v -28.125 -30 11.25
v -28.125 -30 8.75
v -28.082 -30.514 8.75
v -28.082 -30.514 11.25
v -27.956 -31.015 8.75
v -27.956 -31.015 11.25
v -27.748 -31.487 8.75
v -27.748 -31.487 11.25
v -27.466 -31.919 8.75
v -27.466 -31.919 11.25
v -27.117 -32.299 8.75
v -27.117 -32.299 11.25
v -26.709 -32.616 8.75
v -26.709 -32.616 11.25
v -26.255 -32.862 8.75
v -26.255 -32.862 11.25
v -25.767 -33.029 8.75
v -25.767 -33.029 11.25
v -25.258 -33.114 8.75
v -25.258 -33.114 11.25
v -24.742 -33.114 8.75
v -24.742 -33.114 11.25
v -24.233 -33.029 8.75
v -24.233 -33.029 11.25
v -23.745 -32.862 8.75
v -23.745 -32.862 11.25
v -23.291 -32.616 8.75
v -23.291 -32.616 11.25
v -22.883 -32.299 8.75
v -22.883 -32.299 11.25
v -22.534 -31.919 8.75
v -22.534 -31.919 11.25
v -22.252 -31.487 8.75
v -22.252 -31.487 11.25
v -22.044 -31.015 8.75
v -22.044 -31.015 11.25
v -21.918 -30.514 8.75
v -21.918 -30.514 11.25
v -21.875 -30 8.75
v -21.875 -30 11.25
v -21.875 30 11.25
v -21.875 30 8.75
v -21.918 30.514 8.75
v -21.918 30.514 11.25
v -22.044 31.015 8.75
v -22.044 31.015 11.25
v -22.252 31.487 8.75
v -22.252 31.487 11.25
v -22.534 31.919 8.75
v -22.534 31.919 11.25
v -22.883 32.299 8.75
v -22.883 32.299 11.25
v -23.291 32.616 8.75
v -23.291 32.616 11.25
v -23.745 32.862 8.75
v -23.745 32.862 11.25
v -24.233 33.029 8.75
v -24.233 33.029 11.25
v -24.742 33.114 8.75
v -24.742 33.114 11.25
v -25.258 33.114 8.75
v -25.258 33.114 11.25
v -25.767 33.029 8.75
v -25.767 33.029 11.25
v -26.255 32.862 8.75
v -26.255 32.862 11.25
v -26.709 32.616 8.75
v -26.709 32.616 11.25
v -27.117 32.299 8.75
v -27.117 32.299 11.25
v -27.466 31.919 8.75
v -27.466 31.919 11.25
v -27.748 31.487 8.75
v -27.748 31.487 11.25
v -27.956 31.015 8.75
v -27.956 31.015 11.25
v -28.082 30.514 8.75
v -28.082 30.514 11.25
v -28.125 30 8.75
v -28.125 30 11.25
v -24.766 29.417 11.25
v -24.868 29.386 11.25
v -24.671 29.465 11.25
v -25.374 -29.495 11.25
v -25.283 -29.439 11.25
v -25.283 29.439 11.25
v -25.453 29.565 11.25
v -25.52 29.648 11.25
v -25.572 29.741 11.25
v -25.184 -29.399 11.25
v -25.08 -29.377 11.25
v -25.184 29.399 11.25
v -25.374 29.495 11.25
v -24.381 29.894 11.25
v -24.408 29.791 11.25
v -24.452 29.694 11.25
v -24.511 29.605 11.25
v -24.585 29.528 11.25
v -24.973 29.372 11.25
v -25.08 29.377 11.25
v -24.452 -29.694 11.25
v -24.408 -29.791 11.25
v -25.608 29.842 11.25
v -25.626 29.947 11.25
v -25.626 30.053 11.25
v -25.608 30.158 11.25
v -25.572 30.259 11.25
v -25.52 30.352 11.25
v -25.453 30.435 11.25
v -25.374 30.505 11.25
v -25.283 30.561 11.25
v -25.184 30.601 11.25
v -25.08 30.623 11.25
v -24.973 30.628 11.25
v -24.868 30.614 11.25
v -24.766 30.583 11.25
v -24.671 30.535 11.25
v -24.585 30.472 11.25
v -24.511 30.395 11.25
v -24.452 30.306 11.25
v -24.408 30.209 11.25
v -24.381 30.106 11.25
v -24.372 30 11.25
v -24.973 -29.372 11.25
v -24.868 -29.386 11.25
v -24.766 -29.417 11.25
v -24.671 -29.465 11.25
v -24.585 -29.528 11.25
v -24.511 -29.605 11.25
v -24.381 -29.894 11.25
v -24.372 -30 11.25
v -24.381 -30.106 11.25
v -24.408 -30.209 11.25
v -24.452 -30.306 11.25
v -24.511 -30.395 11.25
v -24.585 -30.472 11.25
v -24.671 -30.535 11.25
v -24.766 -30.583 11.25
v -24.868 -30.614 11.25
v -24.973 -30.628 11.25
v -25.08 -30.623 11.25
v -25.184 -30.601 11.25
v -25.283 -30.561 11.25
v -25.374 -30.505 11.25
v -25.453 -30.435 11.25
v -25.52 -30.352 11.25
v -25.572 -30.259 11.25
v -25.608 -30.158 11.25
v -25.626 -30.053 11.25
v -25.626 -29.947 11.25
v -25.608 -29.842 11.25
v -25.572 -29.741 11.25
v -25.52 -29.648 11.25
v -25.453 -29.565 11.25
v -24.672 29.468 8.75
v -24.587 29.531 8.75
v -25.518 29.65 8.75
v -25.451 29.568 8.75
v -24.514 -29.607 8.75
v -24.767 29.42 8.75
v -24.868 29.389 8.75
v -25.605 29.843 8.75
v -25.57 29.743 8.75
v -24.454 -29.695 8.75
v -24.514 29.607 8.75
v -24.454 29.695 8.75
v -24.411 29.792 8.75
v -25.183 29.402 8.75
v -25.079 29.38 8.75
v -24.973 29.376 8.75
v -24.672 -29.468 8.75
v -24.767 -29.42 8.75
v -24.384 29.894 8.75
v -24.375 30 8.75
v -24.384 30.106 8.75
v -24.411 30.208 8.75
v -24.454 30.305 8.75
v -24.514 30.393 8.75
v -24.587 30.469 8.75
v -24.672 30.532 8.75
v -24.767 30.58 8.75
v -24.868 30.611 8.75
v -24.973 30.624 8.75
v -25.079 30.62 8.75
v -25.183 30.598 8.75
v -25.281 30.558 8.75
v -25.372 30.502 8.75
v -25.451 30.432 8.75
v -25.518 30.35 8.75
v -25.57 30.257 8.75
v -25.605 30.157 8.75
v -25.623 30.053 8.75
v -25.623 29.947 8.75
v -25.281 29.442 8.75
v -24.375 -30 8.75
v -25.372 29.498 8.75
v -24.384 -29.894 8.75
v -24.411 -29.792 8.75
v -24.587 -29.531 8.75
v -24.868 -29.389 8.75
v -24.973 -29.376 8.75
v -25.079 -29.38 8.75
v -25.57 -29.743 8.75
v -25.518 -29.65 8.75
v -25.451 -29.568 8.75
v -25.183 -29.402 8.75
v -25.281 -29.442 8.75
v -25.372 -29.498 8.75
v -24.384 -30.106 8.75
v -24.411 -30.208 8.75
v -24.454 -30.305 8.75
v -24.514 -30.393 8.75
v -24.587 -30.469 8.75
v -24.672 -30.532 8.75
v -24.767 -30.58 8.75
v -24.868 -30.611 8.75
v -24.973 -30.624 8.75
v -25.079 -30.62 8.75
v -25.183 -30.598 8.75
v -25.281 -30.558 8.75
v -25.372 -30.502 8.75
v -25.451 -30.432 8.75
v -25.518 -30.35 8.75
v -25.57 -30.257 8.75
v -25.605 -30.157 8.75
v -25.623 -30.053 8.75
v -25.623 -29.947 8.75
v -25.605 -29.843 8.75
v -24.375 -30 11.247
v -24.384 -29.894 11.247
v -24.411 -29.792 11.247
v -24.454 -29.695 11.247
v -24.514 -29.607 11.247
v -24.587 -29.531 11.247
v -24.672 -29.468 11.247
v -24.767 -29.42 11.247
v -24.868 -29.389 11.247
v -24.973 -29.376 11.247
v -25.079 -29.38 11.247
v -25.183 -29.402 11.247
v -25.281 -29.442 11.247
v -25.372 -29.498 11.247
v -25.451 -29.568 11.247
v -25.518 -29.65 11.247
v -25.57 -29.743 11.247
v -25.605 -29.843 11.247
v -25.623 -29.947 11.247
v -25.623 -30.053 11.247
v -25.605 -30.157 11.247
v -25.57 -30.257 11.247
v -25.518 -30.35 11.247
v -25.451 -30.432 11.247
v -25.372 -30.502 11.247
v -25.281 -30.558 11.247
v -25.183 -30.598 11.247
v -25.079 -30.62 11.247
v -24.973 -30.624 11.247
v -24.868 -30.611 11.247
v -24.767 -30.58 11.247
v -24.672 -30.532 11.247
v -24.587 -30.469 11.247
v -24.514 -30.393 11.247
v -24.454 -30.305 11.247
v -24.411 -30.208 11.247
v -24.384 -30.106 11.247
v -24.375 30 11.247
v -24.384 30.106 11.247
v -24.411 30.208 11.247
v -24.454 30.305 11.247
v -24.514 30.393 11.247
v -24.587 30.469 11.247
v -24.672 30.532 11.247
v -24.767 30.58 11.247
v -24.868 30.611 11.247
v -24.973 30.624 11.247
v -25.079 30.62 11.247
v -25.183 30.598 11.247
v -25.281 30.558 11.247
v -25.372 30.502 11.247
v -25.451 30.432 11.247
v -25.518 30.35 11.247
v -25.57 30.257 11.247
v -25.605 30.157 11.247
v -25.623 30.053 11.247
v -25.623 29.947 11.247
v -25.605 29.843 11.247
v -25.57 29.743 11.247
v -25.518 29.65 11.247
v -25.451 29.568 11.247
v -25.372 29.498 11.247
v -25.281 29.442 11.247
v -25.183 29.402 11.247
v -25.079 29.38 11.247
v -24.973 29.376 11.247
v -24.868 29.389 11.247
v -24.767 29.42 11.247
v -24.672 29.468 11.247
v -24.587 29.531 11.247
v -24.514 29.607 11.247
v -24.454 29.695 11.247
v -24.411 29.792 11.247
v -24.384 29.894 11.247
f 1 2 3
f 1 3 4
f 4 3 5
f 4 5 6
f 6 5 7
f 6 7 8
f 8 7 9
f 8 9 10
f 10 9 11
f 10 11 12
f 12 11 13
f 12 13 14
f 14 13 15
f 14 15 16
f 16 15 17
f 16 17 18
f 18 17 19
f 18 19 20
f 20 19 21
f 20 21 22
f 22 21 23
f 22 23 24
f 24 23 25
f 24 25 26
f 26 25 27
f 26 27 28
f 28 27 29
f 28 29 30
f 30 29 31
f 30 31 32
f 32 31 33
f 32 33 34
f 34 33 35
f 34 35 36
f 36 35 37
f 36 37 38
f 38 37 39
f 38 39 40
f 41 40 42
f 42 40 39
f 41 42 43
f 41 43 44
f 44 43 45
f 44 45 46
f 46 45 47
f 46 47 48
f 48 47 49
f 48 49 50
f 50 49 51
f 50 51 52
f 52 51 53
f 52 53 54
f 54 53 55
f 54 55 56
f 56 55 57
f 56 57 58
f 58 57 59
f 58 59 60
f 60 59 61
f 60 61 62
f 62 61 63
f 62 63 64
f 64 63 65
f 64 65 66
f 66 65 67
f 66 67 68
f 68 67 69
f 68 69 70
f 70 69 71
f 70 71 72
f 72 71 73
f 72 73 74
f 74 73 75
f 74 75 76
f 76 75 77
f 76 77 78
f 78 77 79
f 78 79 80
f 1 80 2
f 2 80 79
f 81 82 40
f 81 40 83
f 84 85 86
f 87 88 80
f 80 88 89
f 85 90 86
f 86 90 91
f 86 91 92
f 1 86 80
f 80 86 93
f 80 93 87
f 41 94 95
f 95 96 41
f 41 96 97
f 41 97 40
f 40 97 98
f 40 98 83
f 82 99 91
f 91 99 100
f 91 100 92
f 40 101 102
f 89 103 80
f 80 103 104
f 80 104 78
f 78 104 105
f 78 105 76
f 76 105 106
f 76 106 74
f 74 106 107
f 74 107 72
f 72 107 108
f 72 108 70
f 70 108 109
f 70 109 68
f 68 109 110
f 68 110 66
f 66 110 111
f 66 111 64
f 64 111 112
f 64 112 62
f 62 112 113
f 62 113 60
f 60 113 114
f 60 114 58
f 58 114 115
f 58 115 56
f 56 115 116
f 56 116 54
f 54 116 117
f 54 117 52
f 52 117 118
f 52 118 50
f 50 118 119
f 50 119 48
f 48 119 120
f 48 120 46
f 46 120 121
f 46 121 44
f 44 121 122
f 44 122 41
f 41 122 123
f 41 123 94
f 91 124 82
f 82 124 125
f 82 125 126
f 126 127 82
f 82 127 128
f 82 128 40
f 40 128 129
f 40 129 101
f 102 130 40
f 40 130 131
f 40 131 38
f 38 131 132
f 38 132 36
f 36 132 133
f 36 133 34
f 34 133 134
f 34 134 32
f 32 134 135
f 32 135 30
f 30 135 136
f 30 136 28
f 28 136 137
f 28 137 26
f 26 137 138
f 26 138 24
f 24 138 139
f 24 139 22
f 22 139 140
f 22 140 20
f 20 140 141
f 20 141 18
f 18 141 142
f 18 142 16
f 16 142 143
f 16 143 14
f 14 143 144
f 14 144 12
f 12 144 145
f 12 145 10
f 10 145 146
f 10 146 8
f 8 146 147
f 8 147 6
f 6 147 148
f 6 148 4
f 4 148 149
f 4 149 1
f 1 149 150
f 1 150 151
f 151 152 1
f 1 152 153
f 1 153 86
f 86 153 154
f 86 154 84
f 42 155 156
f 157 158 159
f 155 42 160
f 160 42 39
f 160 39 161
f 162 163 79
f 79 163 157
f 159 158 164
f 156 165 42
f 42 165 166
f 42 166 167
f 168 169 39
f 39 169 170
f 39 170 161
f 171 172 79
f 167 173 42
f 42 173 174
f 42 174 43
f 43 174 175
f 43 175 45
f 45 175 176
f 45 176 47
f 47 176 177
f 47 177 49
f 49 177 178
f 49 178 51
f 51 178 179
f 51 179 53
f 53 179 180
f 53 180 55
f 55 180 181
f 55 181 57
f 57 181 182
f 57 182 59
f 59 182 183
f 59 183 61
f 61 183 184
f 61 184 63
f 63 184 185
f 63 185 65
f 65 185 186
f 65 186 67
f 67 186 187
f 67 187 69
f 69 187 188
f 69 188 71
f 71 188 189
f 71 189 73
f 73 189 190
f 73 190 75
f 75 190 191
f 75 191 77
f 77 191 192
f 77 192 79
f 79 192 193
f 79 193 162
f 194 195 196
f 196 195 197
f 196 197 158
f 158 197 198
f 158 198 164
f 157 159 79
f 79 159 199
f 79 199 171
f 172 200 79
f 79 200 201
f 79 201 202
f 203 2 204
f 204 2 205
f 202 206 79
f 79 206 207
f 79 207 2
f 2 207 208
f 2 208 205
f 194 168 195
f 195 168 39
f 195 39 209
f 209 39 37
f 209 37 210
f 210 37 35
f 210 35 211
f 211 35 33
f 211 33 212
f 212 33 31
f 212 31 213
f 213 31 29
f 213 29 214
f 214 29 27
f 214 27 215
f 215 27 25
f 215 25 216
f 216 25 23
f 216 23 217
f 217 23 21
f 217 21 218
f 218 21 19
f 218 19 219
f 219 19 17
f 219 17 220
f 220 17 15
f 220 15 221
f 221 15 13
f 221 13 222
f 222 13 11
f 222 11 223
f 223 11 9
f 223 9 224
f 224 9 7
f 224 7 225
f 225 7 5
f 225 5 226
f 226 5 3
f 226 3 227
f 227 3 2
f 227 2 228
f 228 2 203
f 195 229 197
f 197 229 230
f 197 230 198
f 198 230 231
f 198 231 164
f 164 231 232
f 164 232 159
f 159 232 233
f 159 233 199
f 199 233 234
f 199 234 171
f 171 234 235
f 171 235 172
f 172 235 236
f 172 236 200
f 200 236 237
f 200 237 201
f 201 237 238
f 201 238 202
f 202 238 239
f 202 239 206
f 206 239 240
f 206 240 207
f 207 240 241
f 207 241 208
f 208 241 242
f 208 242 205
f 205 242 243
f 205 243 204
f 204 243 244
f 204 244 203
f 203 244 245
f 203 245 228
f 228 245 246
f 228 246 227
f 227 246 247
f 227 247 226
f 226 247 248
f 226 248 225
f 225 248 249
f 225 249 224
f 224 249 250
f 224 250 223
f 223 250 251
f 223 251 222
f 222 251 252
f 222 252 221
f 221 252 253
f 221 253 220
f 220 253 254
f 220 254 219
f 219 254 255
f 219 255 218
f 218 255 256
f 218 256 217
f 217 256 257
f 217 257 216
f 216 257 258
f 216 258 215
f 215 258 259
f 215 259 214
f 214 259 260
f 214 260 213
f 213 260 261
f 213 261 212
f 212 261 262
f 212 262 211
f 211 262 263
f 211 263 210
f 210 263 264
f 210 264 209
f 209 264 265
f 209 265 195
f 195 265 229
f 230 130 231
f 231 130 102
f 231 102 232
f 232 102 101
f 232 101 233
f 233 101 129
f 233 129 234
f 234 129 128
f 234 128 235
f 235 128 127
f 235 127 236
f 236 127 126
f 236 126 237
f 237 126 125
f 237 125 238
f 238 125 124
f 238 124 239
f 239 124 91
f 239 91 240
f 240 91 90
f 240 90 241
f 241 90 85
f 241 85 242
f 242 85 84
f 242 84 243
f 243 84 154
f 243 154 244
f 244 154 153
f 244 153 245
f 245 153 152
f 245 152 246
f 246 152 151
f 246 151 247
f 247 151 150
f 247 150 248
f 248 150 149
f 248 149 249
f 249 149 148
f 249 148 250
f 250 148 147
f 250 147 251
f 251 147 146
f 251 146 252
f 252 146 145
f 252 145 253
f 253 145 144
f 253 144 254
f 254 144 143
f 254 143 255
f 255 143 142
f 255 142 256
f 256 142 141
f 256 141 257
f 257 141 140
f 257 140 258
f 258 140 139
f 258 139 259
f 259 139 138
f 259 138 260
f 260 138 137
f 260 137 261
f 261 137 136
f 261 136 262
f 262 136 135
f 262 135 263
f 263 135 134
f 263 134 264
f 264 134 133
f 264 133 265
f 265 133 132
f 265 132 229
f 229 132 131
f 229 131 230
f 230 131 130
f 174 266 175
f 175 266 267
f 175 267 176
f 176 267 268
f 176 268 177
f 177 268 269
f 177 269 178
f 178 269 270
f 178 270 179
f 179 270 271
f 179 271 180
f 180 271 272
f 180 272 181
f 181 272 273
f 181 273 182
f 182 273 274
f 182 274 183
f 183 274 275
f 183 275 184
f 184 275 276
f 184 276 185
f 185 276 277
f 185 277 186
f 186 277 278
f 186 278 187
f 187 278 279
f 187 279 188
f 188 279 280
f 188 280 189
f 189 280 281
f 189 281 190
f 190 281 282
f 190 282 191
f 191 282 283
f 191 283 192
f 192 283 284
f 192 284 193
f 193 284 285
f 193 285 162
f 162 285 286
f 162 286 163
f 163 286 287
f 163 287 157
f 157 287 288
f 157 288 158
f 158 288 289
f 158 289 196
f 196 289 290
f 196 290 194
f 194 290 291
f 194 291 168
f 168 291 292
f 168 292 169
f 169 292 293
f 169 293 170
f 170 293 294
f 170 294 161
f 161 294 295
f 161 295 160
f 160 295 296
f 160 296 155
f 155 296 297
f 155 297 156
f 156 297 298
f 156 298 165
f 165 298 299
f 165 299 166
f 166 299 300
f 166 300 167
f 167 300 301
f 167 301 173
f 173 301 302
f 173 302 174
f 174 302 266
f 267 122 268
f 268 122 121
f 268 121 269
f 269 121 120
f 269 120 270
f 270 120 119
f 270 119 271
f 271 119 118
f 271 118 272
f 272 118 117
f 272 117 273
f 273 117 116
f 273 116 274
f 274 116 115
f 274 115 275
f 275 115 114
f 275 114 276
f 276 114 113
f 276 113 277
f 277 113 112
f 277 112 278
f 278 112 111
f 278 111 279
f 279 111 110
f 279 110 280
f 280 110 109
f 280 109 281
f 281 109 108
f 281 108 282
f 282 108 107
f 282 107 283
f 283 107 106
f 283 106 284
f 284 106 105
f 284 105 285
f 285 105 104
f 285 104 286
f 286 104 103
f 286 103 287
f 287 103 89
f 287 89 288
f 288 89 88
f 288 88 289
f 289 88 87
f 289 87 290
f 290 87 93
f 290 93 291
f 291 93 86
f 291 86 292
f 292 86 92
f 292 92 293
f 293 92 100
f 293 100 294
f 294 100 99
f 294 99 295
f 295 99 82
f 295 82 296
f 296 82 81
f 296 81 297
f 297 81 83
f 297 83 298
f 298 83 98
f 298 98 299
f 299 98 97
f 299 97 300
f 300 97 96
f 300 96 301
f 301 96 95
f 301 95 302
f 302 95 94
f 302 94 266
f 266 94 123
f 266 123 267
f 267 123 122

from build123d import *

# Parameters (mm, degrees)
BOSS_EXTRUDE1_DEPTH              = 20
F_10_0MM_DOWEL_HOLE1_D           = 10
F_10_0MM_DOWEL_HOLE1_CSINK_D     = 10.05
F_10_0MM_DOWEL_HOLE1_CSINK_ANGLE = 90
SCALE1_SCALE                     = 0.125


with BuildPart() as part:
    # Sketch2 → Boss-Extrude1 (new body)
    with BuildSketch(Plane.XY):
        with BuildLine():
            Line((-50, -240), (-50, 240))
            ThreePointArc((-50, 240), (-25, 265), (0, 240))
            Line((0, 240), (0, -240))
            ThreePointArc((0, -240), (-25, -265), (-50, -240))
        make_face()
    extrude(amount=BOSS_EXTRUDE1_DEPTH)

    # Ø10.0mm Dowel Hole1 (through all)
    with Locations(Plane.XY.offset(20)):
        with Locations((-25, 240), (-25, -240)):
            CounterSinkHole(F_10_0MM_DOWEL_HOLE1_D / 2, F_10_0MM_DOWEL_HOLE1_CSINK_D / 2, counter_sink_angle=F_10_0MM_DOWEL_HOLE1_CSINK_ANGLE)


with BuildPart() as part_1:
    # Scale1: scaled about (-25, 0, 9.999999619)
    add(part.part.scale(SCALE1_SCALE).moved(Location((-21.875, 0, 8.749999667))))


solid = part_1.part
